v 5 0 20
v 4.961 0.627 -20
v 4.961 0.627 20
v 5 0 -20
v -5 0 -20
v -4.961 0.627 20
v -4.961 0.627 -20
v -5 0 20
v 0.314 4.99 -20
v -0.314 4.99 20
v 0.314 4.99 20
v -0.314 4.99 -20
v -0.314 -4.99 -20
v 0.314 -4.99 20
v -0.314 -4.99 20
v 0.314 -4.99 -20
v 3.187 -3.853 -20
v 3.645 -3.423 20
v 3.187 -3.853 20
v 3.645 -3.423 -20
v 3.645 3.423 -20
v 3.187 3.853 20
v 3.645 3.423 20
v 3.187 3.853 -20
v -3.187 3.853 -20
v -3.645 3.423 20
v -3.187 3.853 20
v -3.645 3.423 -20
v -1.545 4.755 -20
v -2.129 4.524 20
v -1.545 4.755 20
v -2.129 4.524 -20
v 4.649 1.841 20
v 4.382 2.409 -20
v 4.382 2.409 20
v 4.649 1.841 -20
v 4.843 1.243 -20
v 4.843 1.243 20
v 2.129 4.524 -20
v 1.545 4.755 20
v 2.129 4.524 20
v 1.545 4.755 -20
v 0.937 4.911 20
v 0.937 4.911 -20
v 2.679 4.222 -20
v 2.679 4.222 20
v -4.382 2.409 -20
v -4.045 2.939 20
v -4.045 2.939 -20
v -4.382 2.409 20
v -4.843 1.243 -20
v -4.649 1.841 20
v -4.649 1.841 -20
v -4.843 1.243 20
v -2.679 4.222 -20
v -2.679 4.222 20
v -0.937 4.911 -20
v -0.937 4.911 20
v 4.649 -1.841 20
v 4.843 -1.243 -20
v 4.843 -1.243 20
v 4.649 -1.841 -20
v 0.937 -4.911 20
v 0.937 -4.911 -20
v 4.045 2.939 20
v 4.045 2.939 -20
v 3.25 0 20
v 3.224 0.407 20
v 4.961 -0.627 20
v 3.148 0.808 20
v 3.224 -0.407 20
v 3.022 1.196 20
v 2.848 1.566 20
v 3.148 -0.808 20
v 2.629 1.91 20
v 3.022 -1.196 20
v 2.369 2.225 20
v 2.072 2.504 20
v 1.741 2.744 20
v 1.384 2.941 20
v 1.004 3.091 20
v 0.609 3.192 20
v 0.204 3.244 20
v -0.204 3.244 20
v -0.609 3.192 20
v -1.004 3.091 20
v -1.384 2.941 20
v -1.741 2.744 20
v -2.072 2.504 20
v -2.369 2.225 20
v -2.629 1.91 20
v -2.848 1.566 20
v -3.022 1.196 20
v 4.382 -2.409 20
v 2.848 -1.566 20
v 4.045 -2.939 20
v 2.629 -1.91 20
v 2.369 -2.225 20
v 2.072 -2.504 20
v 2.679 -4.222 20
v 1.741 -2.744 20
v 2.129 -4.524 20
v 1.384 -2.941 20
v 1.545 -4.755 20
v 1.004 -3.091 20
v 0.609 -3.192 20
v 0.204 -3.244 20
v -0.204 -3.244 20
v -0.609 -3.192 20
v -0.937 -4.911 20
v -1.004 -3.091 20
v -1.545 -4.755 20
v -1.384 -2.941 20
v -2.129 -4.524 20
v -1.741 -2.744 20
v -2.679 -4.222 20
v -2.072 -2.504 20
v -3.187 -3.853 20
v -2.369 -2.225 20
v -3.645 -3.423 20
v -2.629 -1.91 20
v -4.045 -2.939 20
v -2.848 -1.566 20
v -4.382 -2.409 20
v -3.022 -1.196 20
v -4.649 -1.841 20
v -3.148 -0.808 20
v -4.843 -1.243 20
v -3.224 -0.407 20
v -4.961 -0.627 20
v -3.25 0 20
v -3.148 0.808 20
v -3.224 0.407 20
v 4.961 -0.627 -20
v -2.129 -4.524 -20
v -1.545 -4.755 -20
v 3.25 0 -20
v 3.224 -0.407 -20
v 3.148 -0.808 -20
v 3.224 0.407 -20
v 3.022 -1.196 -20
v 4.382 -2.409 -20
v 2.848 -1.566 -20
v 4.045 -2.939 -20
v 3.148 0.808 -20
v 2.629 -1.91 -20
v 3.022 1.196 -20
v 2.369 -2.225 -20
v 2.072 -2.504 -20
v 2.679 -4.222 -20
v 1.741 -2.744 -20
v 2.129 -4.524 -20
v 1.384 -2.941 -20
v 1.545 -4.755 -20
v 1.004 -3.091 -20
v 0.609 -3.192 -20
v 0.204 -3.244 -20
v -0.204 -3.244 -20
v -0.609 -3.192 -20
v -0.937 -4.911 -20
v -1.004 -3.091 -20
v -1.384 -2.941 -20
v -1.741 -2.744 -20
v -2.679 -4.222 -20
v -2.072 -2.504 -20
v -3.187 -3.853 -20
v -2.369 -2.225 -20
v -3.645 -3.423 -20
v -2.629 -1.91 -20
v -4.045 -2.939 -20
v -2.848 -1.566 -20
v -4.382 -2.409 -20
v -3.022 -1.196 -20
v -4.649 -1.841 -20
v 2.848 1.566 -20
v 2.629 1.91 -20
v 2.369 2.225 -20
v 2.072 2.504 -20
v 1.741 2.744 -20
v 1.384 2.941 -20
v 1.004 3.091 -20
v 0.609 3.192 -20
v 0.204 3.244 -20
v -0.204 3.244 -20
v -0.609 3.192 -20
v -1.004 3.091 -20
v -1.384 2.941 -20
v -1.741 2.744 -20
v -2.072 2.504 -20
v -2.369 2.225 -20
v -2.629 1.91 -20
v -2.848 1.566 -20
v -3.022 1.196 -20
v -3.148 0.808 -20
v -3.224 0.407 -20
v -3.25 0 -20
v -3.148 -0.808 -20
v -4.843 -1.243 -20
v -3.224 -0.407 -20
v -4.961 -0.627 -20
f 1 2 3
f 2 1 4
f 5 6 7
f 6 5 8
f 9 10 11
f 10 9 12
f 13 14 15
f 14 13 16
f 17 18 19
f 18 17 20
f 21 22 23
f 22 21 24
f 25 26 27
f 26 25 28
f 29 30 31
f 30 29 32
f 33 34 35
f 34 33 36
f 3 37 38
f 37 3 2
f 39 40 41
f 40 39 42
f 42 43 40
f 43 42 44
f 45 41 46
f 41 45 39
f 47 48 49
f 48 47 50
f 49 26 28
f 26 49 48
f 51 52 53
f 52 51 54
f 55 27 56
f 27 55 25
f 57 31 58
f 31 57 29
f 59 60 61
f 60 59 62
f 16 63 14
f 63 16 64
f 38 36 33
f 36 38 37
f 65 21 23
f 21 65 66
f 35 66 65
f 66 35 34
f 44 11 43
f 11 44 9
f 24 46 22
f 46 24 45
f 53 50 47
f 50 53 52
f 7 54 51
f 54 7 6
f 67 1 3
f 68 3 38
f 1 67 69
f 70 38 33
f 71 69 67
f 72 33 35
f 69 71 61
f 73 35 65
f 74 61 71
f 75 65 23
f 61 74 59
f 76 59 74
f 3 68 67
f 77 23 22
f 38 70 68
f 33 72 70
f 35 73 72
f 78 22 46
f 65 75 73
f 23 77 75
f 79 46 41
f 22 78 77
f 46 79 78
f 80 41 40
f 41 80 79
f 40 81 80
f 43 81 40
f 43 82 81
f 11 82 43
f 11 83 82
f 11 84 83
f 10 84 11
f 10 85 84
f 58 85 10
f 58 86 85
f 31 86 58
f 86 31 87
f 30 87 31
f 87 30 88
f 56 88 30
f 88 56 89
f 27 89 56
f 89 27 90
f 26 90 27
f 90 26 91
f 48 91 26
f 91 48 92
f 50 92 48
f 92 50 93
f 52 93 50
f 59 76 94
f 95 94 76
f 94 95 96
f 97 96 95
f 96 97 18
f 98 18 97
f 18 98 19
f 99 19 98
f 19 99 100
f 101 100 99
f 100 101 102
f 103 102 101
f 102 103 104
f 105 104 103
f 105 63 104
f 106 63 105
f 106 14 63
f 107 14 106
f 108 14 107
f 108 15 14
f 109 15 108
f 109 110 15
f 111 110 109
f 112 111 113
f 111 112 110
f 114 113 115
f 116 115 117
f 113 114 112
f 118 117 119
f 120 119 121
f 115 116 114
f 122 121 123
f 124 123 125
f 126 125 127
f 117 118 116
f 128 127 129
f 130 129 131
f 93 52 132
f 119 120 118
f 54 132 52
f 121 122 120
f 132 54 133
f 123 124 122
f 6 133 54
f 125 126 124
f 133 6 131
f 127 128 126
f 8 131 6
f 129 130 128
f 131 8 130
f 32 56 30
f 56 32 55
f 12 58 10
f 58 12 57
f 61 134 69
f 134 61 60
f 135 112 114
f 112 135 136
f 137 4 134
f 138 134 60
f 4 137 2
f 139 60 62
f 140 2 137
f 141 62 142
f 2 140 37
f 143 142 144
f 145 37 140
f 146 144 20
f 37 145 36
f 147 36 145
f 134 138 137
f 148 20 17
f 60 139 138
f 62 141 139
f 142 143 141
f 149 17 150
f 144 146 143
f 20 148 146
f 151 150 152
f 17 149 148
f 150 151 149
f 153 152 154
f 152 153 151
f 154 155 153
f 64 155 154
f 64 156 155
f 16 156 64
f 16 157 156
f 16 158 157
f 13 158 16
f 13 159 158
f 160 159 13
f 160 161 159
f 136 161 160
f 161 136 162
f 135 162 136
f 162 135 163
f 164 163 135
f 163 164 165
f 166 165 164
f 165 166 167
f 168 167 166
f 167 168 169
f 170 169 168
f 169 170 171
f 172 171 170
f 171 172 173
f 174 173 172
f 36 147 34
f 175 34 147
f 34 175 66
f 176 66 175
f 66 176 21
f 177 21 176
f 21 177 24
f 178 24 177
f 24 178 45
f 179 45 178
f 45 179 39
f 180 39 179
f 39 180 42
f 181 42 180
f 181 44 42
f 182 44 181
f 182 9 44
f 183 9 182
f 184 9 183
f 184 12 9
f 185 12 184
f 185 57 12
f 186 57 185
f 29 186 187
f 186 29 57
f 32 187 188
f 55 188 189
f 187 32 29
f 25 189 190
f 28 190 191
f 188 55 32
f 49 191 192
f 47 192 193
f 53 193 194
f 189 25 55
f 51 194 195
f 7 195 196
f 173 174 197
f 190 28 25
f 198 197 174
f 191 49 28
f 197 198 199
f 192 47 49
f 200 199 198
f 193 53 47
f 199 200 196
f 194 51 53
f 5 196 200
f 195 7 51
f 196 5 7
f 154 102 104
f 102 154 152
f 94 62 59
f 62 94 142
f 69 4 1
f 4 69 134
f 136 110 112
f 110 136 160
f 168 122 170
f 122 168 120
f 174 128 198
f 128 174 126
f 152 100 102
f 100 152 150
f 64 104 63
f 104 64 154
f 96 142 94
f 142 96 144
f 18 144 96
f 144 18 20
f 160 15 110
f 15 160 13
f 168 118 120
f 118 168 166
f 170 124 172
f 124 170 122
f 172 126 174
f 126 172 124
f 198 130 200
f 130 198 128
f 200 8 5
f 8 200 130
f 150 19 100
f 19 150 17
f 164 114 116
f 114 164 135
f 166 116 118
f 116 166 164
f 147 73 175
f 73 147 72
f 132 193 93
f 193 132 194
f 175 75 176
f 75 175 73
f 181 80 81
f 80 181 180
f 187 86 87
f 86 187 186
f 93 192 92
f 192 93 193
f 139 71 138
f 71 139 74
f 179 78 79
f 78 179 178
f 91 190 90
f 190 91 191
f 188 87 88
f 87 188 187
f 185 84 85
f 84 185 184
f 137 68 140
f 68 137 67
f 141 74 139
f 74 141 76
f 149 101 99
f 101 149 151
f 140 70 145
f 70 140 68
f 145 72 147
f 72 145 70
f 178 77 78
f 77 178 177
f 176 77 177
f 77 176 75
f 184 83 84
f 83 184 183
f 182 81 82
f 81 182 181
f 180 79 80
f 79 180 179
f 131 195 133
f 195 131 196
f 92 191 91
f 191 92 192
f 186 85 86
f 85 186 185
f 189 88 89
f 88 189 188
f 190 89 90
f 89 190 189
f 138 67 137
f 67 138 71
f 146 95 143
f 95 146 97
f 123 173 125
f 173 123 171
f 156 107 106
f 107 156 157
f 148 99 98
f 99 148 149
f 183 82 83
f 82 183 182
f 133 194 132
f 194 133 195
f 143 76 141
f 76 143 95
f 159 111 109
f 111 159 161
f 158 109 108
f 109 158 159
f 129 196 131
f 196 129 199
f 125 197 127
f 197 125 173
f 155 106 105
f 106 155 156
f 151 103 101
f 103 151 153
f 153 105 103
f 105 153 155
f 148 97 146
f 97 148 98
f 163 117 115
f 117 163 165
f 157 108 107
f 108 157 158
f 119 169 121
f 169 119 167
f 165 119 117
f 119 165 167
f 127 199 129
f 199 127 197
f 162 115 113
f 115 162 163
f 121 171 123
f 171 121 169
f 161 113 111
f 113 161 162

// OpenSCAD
$fn = 50;


difference() {
	union() {
		translate(v = [0, 0, -20.0000000000]) {
			cylinder(h = 40, r = 5.0000000000);
		}
	}
	union() {
		translate(v = [0, 0, -100.0000000000]) {
			cylinder(h = 200, r = 3.2500000000);
		}
	}
}
